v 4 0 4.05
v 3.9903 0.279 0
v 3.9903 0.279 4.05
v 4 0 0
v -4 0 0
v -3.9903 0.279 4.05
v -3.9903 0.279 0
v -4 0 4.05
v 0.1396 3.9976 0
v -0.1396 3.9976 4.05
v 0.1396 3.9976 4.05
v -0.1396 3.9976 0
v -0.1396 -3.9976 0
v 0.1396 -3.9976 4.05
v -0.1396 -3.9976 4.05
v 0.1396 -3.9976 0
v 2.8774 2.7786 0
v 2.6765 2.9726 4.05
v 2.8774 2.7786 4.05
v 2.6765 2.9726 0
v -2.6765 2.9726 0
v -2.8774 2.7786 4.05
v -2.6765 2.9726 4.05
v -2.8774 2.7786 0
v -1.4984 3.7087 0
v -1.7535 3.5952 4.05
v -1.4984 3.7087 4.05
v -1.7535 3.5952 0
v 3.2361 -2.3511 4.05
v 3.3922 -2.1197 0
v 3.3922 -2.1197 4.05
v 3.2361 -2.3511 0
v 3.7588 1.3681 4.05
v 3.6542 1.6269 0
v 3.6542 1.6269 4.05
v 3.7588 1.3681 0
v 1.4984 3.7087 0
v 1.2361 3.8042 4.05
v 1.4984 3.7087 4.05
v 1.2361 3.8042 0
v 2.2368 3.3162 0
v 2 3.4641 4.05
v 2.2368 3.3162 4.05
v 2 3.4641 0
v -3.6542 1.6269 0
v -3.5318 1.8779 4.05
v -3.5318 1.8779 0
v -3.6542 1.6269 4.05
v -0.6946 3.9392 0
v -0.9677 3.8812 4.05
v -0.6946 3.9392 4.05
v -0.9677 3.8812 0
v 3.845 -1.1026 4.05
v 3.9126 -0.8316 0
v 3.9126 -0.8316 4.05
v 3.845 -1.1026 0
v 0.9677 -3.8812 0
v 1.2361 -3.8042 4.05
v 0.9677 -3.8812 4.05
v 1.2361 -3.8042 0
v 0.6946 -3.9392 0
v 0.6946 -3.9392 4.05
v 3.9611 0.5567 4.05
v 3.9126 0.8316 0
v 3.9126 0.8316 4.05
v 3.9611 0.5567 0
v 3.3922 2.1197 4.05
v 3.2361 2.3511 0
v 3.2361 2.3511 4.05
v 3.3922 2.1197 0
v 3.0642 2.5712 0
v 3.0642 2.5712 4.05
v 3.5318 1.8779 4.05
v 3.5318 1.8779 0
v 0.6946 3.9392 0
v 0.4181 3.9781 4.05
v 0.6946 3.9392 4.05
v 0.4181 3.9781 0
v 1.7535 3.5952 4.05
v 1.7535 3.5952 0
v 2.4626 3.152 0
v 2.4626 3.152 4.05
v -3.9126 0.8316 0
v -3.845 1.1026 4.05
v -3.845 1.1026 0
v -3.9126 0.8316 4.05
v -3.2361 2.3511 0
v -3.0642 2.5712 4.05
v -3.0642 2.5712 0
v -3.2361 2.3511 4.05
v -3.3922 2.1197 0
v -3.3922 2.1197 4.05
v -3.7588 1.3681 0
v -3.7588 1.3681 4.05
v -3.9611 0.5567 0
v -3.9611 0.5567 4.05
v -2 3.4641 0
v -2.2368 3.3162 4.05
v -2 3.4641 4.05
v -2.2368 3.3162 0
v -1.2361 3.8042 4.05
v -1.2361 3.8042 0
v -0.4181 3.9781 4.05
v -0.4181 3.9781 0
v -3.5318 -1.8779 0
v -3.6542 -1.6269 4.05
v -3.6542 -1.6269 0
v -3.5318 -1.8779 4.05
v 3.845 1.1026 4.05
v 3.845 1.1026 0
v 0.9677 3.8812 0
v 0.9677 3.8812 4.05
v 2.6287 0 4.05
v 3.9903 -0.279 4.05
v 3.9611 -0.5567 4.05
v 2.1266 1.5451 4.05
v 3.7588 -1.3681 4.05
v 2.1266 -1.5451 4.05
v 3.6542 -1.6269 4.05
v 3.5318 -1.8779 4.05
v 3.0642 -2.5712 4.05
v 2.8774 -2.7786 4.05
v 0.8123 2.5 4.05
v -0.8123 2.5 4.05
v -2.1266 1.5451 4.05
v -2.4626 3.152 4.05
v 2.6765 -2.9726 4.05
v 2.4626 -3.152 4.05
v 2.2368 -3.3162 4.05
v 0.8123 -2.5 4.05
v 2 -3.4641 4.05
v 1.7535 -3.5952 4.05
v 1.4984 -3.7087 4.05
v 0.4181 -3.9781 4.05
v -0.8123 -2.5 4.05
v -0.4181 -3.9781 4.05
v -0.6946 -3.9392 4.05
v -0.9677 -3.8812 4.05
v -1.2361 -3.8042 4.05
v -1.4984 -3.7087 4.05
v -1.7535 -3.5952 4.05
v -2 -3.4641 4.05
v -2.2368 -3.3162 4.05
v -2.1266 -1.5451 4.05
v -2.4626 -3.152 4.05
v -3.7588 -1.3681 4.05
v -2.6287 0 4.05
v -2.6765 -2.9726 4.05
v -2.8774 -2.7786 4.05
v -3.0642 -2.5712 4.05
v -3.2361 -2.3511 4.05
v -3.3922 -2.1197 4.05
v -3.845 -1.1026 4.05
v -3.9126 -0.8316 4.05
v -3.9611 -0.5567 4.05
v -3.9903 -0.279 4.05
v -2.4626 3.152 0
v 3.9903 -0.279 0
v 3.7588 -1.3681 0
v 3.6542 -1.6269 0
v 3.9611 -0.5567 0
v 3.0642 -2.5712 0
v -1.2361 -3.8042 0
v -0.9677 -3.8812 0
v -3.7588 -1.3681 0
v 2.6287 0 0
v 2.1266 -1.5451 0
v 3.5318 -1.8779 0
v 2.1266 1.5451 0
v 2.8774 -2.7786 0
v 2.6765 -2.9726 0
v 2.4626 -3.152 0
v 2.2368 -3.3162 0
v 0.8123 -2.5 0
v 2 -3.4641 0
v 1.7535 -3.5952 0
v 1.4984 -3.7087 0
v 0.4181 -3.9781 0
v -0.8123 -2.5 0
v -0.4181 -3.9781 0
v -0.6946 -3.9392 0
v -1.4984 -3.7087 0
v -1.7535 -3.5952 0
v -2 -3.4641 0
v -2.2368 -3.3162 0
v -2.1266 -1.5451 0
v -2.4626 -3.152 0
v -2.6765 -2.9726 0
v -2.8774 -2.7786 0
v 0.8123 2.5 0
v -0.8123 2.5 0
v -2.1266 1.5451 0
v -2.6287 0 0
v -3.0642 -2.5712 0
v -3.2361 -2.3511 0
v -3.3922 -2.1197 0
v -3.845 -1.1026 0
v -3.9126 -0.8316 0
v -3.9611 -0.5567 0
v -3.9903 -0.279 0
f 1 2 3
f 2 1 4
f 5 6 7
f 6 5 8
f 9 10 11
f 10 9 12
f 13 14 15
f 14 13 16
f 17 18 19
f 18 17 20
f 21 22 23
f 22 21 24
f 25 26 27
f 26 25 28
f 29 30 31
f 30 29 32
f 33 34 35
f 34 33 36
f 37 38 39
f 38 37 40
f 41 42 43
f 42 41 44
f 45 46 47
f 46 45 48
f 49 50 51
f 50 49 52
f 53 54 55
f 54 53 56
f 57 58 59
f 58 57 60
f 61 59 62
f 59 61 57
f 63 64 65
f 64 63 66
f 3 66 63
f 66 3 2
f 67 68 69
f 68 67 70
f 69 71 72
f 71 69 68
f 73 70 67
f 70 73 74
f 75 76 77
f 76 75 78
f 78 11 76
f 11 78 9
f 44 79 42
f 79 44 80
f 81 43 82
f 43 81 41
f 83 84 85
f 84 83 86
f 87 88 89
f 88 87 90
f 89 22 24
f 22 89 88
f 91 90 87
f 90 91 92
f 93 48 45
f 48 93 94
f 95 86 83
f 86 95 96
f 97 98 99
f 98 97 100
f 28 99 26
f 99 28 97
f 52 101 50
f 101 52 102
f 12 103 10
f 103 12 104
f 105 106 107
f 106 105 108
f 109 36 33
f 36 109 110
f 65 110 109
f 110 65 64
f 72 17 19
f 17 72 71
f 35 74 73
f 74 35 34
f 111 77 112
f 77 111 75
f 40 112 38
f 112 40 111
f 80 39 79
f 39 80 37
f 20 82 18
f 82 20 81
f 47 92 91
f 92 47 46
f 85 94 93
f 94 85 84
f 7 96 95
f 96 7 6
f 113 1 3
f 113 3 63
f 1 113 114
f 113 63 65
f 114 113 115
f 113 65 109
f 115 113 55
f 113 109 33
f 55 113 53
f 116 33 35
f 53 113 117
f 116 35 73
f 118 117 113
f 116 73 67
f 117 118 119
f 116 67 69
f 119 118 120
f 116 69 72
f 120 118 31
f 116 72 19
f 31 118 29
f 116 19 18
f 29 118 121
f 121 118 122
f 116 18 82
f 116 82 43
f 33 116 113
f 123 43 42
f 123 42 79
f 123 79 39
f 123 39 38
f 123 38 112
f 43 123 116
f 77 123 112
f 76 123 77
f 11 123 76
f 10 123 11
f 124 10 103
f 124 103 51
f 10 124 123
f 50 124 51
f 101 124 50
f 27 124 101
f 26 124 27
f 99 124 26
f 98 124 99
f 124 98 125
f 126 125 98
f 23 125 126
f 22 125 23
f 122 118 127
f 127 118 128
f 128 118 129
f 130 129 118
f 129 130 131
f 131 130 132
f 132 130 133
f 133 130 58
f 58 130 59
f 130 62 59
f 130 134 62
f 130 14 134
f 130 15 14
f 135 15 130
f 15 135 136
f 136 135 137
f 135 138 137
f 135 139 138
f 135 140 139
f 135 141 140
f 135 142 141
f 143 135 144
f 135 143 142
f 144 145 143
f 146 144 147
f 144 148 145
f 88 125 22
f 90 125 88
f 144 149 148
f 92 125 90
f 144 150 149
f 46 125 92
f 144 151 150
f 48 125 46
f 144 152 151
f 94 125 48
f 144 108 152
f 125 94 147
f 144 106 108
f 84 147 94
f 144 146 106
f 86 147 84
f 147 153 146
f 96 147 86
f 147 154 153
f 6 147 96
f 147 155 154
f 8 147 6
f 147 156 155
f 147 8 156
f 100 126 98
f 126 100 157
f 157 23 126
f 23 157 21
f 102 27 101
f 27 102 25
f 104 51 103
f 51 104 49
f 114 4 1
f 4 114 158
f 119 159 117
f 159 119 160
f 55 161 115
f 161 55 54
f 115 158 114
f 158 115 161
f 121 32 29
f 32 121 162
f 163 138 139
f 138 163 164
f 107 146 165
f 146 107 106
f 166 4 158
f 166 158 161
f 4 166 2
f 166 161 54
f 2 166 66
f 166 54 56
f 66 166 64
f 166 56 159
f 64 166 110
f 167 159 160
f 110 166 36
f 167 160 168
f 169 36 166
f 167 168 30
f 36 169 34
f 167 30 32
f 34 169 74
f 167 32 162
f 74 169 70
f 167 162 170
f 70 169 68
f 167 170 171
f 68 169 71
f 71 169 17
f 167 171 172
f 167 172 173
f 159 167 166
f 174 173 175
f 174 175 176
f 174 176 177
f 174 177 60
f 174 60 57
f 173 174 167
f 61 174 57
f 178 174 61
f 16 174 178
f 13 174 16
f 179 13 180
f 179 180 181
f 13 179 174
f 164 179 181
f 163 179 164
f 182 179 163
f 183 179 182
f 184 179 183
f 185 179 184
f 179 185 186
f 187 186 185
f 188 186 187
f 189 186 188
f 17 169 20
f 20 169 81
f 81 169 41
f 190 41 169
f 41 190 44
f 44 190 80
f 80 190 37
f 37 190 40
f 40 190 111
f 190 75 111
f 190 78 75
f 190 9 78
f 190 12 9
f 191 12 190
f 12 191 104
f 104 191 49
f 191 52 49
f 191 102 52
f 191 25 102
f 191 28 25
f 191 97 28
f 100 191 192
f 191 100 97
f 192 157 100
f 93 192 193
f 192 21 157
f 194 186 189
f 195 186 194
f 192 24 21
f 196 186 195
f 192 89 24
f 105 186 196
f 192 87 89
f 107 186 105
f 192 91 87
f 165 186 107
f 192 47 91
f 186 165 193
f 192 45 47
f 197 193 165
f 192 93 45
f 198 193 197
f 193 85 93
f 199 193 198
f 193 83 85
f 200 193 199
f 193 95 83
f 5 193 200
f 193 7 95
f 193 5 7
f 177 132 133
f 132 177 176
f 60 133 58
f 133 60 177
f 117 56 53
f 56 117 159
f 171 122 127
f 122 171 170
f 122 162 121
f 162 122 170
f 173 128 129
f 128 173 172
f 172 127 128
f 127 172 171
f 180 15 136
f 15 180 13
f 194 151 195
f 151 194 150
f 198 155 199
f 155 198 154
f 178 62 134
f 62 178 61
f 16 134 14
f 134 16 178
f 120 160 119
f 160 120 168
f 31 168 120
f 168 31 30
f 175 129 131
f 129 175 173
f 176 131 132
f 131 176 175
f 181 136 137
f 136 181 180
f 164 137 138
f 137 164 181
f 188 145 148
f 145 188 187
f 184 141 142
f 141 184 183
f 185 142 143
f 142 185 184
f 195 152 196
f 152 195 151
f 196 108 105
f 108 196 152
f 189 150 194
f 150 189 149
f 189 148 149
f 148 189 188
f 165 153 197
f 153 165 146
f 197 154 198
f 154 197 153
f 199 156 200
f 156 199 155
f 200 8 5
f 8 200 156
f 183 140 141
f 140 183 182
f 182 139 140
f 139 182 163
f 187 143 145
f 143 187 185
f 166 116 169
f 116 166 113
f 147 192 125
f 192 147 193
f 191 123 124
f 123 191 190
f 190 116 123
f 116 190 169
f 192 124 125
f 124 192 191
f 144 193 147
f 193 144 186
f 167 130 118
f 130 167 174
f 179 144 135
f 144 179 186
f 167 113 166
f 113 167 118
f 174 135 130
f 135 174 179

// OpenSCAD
// file: ../polyhole.scad
// The Cylinder is dead! Long live the Cylinder!
// A module for a polyhole by radius, based on Nophead's work.

module polyhole(h, r, cent = false)
{
    n = max(round(4 * r), 3);
    cylinder(h = h, r = r / cos(180 / n), $fn = n, center = cent);
}
// file: ../spacer.scad
use<polyhole.scad>

spacer(10, 10, 5);

module spacer(hei, or, ir, cent = false)
{
    difference()
    {
        cylinder(h = hei, r = or, center = cent, $fn = 90);
        polyhole(hei, ir, cent);
    }
}
// main file
use<../spacer.scad>

IdlerSpacerT();

module IdlerSpacerT()
{
    spacer((20+12.5-3)-(15.25+10.4/2+4)-1, 8/2, 5/2);
}
